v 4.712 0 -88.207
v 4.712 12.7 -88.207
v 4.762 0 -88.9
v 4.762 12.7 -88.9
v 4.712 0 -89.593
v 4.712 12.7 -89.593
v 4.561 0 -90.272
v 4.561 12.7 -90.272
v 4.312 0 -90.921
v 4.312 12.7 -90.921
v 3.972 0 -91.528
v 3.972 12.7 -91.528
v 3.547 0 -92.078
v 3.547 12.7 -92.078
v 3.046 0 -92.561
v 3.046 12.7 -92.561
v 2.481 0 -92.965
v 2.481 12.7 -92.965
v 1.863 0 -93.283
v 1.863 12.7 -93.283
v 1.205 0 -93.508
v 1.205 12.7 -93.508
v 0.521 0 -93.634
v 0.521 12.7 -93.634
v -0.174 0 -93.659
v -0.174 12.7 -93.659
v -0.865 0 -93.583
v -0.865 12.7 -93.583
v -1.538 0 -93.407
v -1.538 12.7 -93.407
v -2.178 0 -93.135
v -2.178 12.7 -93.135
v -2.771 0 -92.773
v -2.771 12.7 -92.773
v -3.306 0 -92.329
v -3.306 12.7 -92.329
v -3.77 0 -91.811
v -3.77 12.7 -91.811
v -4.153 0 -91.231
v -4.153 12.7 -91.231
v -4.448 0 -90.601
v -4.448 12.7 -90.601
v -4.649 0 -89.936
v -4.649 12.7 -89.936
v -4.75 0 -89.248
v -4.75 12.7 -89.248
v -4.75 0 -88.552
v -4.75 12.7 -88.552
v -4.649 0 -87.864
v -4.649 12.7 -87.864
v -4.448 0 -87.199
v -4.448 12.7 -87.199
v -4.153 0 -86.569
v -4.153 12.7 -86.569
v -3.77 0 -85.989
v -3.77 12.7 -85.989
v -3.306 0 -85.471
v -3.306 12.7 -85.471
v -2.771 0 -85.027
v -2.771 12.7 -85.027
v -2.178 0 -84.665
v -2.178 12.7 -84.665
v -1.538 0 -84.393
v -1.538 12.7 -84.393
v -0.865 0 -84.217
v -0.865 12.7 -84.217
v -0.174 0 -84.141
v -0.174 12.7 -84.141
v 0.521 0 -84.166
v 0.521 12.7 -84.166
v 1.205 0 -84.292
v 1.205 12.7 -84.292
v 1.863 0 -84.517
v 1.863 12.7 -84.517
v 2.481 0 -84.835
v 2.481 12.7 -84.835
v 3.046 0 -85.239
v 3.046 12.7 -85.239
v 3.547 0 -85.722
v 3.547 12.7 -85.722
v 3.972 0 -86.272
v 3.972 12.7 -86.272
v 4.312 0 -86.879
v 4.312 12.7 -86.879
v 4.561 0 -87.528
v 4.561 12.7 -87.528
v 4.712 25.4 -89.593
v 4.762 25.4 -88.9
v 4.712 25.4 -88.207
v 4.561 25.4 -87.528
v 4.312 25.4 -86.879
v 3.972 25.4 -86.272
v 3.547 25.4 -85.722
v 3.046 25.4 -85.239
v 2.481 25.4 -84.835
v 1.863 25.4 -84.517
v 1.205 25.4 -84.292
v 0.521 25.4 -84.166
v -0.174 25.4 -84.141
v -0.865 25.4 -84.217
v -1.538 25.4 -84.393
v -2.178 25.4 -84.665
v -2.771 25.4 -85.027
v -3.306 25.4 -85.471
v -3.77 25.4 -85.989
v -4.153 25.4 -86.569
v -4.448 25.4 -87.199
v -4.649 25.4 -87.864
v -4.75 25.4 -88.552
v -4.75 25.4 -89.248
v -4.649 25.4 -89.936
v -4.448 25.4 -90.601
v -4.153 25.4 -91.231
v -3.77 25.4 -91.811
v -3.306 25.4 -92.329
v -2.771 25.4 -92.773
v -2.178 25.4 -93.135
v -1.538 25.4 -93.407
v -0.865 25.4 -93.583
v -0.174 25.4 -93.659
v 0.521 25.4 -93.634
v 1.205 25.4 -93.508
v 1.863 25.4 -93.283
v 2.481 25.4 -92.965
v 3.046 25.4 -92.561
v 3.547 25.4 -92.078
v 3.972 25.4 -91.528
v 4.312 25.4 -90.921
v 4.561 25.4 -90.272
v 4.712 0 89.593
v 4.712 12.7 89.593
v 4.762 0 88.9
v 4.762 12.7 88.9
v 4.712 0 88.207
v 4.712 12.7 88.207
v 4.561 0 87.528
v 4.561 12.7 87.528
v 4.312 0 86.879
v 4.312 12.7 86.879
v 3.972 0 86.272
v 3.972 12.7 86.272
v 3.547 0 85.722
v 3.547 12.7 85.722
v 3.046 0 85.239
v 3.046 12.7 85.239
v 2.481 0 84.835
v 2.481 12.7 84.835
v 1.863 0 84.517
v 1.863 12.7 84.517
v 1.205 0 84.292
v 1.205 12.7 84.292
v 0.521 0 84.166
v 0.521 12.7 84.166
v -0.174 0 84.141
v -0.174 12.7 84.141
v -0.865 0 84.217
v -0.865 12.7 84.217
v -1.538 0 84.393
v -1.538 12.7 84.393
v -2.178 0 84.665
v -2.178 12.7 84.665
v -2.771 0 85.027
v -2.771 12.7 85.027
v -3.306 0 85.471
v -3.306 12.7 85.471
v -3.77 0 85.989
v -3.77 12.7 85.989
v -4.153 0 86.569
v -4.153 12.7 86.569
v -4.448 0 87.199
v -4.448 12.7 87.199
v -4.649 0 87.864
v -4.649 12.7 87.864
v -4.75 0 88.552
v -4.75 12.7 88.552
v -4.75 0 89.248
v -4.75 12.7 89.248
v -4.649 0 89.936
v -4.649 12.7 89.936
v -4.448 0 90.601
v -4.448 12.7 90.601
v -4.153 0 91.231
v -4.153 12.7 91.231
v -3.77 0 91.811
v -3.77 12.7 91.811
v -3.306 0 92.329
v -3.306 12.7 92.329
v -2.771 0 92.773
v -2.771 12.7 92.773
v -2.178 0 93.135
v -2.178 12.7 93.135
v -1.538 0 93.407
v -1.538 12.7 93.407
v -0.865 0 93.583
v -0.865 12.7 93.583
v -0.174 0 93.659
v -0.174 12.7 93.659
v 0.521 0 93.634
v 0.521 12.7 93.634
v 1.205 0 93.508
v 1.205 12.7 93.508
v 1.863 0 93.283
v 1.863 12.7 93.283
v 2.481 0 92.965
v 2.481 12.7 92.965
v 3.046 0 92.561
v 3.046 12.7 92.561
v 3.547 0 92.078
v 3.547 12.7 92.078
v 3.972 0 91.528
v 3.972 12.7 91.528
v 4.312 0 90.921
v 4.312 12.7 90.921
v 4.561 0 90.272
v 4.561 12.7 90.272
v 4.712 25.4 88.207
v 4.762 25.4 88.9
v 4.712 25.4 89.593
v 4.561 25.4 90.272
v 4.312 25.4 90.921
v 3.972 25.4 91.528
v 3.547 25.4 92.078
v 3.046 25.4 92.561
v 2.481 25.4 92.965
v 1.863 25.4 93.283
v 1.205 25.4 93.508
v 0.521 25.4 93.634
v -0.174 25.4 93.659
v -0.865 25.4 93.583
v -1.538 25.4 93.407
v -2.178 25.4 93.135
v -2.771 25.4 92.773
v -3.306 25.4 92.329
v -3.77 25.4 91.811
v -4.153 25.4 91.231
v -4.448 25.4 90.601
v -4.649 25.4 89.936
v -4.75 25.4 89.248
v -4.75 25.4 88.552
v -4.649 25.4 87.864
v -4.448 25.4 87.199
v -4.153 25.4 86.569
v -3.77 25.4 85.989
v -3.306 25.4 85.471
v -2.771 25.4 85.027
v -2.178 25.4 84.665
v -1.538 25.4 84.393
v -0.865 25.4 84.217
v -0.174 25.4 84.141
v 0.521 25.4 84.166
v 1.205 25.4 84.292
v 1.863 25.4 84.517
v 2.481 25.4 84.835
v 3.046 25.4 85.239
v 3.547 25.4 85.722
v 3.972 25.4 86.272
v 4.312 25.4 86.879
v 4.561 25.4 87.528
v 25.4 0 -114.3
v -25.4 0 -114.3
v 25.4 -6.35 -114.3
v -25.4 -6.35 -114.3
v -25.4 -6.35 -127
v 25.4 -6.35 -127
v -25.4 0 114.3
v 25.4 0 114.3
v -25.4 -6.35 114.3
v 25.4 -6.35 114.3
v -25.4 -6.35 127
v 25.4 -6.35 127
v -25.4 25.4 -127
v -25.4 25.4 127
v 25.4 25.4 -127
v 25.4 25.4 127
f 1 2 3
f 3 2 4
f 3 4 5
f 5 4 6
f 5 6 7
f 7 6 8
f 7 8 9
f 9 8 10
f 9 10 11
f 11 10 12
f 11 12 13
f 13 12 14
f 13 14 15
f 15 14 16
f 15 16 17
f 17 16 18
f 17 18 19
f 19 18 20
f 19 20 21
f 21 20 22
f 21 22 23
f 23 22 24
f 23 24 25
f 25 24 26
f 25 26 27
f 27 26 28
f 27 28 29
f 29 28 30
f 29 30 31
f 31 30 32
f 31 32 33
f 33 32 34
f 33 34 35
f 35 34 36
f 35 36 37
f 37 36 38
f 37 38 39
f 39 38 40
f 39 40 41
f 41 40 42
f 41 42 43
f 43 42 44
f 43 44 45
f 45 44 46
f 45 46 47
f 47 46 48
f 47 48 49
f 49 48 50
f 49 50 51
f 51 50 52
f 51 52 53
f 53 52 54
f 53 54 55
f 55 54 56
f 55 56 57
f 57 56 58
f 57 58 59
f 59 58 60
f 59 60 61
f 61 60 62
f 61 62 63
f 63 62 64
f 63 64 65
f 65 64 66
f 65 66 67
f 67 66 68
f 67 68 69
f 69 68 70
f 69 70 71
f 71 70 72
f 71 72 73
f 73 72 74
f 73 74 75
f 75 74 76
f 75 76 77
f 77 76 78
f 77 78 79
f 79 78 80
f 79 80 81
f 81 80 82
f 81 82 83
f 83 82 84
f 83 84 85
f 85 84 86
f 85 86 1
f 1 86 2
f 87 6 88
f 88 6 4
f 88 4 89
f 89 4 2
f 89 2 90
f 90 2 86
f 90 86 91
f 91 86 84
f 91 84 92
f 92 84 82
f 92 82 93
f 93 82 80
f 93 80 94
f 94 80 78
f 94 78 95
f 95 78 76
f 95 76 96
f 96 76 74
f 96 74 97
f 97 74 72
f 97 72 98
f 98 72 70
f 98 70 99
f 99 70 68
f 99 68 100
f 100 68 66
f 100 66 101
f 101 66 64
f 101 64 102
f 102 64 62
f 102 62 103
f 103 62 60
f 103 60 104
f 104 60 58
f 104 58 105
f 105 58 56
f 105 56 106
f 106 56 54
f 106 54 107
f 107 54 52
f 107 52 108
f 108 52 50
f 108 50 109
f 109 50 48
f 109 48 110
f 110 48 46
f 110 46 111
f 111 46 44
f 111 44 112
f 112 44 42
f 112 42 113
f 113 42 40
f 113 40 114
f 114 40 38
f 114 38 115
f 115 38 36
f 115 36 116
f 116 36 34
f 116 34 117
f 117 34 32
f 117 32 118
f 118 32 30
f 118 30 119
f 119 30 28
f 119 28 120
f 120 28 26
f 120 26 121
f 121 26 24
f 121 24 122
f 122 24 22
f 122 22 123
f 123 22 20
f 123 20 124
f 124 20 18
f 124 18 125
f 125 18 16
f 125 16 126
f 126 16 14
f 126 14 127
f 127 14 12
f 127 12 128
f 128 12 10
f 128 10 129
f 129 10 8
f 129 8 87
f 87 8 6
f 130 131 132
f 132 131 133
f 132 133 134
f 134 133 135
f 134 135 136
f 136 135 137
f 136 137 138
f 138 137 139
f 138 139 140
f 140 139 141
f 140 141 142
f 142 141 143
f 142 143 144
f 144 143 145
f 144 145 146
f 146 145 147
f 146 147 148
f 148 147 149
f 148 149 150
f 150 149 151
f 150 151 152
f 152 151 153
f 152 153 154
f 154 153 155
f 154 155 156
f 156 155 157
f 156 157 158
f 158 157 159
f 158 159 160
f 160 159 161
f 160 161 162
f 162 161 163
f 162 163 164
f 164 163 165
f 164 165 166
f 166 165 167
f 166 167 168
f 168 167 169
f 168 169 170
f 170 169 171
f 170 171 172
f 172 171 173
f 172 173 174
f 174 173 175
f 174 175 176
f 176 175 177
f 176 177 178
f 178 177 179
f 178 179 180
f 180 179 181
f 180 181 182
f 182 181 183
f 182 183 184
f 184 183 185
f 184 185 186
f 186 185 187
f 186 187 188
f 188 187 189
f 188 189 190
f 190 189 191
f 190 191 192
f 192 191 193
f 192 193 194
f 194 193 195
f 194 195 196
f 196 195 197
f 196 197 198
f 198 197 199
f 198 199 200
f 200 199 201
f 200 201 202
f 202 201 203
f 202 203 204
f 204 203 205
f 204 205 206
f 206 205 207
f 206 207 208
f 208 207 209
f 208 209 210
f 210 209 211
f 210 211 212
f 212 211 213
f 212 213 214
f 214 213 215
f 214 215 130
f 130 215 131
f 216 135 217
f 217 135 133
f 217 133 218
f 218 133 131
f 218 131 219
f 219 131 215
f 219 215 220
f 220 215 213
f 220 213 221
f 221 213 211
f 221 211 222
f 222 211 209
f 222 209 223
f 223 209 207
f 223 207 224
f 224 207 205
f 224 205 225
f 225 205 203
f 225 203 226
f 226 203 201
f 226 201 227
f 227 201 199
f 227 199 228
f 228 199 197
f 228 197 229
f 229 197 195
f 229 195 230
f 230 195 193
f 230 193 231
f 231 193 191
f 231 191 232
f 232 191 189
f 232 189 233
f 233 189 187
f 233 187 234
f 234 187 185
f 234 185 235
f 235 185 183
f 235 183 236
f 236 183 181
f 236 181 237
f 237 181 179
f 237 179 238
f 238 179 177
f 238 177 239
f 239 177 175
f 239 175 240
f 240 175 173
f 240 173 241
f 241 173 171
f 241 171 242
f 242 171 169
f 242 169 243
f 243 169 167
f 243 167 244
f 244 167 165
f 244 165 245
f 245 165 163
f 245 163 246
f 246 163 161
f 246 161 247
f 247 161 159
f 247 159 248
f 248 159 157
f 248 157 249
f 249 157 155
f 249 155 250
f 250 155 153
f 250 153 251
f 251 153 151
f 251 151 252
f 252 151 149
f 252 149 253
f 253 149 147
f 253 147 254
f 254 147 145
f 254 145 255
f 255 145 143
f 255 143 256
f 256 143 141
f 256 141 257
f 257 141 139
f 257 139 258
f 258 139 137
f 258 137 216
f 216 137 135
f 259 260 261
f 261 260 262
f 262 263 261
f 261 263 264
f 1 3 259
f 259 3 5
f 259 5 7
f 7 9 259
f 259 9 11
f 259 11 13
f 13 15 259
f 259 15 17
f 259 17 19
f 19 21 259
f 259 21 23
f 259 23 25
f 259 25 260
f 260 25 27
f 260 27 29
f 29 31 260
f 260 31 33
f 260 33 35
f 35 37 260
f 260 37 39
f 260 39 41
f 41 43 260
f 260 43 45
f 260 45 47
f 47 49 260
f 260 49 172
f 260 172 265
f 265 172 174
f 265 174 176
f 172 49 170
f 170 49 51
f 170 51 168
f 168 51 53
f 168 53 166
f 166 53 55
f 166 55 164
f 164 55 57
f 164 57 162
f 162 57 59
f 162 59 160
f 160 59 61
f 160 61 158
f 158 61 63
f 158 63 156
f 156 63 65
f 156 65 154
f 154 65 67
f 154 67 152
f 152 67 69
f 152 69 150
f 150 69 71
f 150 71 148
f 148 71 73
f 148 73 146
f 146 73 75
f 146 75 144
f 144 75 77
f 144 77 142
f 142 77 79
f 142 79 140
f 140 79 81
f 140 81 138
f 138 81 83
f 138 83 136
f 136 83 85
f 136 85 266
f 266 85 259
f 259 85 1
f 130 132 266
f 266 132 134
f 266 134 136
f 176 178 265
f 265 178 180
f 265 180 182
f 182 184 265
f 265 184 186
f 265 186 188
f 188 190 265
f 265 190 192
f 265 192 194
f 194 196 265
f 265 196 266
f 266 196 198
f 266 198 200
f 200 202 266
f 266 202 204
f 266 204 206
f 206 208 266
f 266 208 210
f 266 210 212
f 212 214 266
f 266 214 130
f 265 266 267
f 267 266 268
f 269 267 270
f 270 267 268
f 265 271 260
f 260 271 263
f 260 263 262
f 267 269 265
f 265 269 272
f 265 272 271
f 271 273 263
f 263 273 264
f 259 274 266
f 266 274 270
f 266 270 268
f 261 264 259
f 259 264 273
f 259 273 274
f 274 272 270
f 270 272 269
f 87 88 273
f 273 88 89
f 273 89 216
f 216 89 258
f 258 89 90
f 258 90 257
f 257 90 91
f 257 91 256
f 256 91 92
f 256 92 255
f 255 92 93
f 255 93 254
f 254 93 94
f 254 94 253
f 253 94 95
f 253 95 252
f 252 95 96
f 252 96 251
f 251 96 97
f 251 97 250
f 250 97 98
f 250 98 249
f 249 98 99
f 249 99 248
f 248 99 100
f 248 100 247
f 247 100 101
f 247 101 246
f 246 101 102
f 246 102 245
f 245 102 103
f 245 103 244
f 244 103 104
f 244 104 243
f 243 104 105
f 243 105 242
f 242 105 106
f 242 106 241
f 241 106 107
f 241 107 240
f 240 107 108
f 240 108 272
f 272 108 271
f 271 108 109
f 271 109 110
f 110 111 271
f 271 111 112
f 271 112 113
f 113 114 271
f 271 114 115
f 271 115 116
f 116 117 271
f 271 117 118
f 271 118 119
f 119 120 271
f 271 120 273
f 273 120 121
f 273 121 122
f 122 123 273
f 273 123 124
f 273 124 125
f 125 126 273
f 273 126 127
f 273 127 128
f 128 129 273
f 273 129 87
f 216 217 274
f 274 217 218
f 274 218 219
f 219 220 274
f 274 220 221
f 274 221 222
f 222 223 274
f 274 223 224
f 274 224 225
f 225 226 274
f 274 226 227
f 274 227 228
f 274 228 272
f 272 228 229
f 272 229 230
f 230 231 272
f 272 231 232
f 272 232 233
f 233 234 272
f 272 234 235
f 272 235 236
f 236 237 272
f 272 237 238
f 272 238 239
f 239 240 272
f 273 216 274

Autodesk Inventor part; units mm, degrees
ref_plane "YZ Plane" through (0, 0, 0) normal (1, 0, 0) x (0, 1, 0)
ref_plane "XZ Plane" through (0, 0, 0) normal (0, 1, 0) x (-1, 0, 0)
sketch "Sketch1" plane through (0, 0, 0) normal (0, 1, 0) x (-1, 0, 0)
  line L0 (25.4, 127) -> (-25.4, 127)
  line L1 (-25.4, 127) -> (-25.4, -127)
  line L2 (-25.4, -127) -> (25.4, -127)
  line L3 (25.4, -127) -> (25.4, 127)
  line L4 (25.4, 127) -> (-25.4, -127) construction
  line L5 (-25.4, 127) -> (25.4, -127) construction
  point P0 (0, 0)
  dimension "d0" = 50.8
  dimension "d1" = 254
extrude "Extrusion1" add sketch "Sketch1" along normal blind 25.4
sketch "Sketch2" plane through (0, 0, 0) normal (0, -1, 0) x (1, 0, 0)
  line L0 (-25.4, 127) -> (-25.4, 114.3)
  line L1 (-25.4, 114.3) -> (25.4, 114.3)
  line L2 (25.4, 114.3) -> (25.4, 127)
  line L3 (25.4, 127) -> (-25.4, 127)
  line L4 (-25.4, 127) -> (25.4, 114.3) construction
  line L5 (-25.4, 114.3) -> (25.4, 127) construction
  line L6 (-25.4, 127) -> (25.4, 127) projected
  point P0 (0, 0)
  point P1 (0, 120.65)
  dimension "d4" = 12.7
  dimension "d5" = 25.4
  dimension "d6" = 0
extrude "Extrusion2" add sketch "Sketch2" along normal blind 6.35
mirror "Mirror1" about plane through (0, 0, 0) normal (0, 0, 1) of "Extrusion2"
sketch "Sketch3" plane through (0, 25.4, 0) normal (0, 1, 0) x (1, 0, 0)
  circle A0 centre (0, -88.9) radius 4.7625
  line L0 (-25.4, -127) -> (25.4, -127) projected
  point P0 (0, 0)
  dimension "d9" = 9.525
  dimension "d10" = 38.1
extrude "Extrusion3" cut sketch "Sketch3" against normal through all
mirror "Mirror2" about plane through (0, 0, 0) normal (0, 0, 1) of "Extrusion3"
properties part number "BandSawJigTop" material "LCP Plastic"
